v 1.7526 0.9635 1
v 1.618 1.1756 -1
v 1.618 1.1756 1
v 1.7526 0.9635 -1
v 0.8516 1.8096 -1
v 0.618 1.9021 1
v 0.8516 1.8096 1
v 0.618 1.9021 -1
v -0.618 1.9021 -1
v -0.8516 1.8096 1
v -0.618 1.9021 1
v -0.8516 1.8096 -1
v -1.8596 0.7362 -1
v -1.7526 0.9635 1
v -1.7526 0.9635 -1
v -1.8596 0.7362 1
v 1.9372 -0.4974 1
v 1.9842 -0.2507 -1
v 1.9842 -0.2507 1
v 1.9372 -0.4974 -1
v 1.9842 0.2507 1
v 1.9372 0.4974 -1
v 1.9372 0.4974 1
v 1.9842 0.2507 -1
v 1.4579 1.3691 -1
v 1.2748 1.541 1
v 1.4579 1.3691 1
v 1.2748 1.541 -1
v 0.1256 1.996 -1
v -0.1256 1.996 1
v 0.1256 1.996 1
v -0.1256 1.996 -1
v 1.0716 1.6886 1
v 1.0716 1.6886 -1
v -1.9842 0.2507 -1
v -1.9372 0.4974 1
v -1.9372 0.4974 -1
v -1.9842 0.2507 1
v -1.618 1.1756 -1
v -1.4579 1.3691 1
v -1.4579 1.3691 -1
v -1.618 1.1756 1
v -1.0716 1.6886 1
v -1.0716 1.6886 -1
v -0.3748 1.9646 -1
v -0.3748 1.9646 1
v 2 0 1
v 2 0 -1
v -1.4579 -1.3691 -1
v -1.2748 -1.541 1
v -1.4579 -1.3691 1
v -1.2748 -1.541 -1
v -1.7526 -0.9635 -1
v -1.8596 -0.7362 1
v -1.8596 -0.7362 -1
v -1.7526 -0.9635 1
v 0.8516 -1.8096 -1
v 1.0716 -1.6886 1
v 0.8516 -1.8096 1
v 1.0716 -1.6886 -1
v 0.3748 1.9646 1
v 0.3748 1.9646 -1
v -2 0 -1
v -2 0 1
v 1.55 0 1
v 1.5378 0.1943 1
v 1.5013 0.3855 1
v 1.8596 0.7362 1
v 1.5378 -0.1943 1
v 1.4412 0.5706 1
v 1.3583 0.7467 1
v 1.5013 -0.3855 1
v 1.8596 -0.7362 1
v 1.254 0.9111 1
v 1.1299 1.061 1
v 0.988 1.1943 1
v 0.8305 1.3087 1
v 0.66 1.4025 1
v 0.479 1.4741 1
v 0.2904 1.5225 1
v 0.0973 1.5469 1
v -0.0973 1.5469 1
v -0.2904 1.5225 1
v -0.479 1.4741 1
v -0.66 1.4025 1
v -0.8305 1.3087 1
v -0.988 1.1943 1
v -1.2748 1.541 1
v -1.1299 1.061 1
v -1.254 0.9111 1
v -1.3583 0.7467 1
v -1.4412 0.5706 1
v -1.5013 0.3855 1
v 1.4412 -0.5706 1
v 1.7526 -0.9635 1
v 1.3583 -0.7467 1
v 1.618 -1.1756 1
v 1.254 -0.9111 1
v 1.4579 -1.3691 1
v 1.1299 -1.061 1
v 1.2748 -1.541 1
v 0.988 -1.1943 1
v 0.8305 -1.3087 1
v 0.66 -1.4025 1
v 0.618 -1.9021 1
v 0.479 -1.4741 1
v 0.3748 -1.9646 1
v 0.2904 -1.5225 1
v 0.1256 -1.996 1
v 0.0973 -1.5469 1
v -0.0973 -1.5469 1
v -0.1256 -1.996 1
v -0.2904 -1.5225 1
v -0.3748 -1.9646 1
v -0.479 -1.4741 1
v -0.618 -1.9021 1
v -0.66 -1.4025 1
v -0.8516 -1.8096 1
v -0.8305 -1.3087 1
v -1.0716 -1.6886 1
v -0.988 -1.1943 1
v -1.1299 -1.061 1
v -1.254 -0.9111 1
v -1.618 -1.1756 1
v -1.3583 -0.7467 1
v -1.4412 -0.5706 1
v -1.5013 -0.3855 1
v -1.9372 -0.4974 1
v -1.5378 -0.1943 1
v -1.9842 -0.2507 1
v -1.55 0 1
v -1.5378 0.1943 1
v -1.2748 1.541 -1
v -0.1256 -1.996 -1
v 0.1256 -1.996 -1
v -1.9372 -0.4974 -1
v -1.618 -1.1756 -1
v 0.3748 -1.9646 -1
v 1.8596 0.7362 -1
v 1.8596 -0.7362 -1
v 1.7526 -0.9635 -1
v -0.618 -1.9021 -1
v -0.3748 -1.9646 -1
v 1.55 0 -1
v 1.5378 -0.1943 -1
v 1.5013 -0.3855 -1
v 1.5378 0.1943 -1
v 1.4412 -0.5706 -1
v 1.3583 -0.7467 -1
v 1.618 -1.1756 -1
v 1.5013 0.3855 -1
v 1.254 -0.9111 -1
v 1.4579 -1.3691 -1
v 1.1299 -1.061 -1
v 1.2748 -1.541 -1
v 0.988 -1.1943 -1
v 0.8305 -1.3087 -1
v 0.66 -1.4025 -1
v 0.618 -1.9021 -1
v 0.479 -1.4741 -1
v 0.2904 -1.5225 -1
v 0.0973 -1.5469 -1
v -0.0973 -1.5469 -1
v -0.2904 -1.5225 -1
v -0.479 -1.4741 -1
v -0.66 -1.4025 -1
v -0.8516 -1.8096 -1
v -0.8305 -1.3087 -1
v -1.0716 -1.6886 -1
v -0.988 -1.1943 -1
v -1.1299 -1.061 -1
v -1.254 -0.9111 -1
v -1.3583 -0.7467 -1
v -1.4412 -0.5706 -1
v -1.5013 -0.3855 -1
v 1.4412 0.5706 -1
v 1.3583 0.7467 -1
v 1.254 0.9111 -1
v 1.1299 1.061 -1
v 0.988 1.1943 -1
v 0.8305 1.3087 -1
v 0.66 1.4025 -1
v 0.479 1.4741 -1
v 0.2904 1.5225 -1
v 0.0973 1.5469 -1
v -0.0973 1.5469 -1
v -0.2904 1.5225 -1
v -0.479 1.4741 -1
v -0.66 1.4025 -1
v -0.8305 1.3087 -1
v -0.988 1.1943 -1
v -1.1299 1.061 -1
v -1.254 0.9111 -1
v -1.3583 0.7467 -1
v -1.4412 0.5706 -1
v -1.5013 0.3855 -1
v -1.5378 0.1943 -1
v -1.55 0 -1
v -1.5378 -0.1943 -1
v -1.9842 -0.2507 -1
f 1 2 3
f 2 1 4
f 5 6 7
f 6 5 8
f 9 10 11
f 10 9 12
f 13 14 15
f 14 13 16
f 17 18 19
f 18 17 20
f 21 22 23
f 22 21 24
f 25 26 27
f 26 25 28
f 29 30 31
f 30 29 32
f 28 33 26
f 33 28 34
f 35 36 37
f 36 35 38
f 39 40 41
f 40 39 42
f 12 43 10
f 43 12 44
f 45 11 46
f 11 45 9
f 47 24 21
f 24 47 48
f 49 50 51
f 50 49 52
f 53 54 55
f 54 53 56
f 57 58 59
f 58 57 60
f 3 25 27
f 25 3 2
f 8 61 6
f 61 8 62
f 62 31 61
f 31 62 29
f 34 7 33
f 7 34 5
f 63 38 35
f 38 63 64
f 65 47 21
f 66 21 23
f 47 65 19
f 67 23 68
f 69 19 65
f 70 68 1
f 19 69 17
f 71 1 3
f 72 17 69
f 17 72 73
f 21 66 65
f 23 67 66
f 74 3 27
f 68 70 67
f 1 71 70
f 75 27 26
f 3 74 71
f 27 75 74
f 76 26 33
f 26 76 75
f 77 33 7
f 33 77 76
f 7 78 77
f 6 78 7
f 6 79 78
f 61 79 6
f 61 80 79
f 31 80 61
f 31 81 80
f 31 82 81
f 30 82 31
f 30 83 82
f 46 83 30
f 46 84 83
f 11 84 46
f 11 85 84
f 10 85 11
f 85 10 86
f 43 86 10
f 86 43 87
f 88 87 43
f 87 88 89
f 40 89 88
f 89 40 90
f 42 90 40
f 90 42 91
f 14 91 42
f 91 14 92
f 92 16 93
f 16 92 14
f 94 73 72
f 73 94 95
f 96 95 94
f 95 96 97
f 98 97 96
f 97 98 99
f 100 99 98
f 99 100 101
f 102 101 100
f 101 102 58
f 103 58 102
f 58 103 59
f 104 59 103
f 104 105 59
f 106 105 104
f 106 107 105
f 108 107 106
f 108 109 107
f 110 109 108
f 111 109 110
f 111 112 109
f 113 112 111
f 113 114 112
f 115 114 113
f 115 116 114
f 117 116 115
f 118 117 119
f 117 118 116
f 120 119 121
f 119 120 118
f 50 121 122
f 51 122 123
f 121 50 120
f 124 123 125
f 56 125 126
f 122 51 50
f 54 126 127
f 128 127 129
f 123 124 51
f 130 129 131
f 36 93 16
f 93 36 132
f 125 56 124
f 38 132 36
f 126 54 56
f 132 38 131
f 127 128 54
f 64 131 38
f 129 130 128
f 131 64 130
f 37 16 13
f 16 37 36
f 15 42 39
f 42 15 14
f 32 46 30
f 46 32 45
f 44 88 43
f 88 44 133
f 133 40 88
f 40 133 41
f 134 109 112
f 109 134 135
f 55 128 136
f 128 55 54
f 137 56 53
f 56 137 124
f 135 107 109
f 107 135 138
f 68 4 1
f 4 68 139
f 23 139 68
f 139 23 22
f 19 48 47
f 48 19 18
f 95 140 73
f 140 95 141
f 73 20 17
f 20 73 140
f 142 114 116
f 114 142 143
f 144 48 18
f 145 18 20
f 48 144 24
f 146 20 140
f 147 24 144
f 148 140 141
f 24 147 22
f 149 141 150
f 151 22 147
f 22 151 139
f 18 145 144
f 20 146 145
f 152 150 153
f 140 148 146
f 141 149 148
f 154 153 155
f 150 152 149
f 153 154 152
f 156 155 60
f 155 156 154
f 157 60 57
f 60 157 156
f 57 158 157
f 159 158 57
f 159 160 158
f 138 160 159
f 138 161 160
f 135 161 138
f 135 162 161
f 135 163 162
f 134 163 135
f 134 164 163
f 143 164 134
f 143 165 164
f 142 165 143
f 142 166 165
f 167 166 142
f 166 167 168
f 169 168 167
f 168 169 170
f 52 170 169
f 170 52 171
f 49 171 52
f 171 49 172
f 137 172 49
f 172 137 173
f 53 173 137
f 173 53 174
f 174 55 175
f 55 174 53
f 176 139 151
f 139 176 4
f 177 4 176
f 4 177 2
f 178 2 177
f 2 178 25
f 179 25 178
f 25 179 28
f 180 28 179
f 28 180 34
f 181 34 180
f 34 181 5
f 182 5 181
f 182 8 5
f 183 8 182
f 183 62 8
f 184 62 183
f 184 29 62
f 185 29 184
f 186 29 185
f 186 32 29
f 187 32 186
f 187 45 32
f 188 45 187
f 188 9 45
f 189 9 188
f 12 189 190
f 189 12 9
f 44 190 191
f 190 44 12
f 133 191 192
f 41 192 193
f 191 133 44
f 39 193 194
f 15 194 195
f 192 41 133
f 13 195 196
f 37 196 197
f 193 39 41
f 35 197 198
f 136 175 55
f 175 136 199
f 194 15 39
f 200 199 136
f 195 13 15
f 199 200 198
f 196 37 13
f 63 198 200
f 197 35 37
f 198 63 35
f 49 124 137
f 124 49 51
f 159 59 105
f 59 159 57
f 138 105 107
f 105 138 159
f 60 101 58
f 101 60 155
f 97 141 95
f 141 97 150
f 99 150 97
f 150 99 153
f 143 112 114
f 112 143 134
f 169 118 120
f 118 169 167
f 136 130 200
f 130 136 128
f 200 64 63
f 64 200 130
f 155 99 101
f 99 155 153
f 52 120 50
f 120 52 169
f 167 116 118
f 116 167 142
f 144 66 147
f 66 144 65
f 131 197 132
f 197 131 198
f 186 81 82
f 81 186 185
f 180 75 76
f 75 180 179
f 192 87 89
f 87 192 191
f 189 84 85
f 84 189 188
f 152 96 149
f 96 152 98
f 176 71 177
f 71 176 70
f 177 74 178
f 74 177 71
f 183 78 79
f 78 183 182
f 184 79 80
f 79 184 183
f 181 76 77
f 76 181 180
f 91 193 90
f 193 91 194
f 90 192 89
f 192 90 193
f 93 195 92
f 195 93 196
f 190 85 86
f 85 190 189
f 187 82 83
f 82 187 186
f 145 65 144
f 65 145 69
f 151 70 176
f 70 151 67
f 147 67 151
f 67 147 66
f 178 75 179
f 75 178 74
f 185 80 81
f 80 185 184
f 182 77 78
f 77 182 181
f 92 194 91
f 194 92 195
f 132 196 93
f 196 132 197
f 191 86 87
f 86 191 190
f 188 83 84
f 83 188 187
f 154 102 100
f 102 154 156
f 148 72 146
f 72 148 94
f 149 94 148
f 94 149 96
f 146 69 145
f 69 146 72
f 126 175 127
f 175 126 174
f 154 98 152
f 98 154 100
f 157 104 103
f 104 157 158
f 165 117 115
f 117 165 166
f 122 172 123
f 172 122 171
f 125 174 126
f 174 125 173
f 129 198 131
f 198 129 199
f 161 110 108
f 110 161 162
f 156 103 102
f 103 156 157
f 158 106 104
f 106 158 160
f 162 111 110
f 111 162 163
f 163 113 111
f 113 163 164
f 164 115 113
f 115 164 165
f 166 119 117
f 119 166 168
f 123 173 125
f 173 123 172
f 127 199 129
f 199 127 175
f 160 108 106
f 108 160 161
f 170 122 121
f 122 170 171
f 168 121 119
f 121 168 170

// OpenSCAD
$fn = 50;


difference() {
	union() {
		translate(v = [0, 0, -1.0000000000]) {
			cylinder(h = 2, r = 2.0000000000);
		}
	}
	union() {
		translate(v = [0, 0, -100.0000000000]) {
			cylinder(h = 200, r = 1.5500000000);
		}
	}
}
